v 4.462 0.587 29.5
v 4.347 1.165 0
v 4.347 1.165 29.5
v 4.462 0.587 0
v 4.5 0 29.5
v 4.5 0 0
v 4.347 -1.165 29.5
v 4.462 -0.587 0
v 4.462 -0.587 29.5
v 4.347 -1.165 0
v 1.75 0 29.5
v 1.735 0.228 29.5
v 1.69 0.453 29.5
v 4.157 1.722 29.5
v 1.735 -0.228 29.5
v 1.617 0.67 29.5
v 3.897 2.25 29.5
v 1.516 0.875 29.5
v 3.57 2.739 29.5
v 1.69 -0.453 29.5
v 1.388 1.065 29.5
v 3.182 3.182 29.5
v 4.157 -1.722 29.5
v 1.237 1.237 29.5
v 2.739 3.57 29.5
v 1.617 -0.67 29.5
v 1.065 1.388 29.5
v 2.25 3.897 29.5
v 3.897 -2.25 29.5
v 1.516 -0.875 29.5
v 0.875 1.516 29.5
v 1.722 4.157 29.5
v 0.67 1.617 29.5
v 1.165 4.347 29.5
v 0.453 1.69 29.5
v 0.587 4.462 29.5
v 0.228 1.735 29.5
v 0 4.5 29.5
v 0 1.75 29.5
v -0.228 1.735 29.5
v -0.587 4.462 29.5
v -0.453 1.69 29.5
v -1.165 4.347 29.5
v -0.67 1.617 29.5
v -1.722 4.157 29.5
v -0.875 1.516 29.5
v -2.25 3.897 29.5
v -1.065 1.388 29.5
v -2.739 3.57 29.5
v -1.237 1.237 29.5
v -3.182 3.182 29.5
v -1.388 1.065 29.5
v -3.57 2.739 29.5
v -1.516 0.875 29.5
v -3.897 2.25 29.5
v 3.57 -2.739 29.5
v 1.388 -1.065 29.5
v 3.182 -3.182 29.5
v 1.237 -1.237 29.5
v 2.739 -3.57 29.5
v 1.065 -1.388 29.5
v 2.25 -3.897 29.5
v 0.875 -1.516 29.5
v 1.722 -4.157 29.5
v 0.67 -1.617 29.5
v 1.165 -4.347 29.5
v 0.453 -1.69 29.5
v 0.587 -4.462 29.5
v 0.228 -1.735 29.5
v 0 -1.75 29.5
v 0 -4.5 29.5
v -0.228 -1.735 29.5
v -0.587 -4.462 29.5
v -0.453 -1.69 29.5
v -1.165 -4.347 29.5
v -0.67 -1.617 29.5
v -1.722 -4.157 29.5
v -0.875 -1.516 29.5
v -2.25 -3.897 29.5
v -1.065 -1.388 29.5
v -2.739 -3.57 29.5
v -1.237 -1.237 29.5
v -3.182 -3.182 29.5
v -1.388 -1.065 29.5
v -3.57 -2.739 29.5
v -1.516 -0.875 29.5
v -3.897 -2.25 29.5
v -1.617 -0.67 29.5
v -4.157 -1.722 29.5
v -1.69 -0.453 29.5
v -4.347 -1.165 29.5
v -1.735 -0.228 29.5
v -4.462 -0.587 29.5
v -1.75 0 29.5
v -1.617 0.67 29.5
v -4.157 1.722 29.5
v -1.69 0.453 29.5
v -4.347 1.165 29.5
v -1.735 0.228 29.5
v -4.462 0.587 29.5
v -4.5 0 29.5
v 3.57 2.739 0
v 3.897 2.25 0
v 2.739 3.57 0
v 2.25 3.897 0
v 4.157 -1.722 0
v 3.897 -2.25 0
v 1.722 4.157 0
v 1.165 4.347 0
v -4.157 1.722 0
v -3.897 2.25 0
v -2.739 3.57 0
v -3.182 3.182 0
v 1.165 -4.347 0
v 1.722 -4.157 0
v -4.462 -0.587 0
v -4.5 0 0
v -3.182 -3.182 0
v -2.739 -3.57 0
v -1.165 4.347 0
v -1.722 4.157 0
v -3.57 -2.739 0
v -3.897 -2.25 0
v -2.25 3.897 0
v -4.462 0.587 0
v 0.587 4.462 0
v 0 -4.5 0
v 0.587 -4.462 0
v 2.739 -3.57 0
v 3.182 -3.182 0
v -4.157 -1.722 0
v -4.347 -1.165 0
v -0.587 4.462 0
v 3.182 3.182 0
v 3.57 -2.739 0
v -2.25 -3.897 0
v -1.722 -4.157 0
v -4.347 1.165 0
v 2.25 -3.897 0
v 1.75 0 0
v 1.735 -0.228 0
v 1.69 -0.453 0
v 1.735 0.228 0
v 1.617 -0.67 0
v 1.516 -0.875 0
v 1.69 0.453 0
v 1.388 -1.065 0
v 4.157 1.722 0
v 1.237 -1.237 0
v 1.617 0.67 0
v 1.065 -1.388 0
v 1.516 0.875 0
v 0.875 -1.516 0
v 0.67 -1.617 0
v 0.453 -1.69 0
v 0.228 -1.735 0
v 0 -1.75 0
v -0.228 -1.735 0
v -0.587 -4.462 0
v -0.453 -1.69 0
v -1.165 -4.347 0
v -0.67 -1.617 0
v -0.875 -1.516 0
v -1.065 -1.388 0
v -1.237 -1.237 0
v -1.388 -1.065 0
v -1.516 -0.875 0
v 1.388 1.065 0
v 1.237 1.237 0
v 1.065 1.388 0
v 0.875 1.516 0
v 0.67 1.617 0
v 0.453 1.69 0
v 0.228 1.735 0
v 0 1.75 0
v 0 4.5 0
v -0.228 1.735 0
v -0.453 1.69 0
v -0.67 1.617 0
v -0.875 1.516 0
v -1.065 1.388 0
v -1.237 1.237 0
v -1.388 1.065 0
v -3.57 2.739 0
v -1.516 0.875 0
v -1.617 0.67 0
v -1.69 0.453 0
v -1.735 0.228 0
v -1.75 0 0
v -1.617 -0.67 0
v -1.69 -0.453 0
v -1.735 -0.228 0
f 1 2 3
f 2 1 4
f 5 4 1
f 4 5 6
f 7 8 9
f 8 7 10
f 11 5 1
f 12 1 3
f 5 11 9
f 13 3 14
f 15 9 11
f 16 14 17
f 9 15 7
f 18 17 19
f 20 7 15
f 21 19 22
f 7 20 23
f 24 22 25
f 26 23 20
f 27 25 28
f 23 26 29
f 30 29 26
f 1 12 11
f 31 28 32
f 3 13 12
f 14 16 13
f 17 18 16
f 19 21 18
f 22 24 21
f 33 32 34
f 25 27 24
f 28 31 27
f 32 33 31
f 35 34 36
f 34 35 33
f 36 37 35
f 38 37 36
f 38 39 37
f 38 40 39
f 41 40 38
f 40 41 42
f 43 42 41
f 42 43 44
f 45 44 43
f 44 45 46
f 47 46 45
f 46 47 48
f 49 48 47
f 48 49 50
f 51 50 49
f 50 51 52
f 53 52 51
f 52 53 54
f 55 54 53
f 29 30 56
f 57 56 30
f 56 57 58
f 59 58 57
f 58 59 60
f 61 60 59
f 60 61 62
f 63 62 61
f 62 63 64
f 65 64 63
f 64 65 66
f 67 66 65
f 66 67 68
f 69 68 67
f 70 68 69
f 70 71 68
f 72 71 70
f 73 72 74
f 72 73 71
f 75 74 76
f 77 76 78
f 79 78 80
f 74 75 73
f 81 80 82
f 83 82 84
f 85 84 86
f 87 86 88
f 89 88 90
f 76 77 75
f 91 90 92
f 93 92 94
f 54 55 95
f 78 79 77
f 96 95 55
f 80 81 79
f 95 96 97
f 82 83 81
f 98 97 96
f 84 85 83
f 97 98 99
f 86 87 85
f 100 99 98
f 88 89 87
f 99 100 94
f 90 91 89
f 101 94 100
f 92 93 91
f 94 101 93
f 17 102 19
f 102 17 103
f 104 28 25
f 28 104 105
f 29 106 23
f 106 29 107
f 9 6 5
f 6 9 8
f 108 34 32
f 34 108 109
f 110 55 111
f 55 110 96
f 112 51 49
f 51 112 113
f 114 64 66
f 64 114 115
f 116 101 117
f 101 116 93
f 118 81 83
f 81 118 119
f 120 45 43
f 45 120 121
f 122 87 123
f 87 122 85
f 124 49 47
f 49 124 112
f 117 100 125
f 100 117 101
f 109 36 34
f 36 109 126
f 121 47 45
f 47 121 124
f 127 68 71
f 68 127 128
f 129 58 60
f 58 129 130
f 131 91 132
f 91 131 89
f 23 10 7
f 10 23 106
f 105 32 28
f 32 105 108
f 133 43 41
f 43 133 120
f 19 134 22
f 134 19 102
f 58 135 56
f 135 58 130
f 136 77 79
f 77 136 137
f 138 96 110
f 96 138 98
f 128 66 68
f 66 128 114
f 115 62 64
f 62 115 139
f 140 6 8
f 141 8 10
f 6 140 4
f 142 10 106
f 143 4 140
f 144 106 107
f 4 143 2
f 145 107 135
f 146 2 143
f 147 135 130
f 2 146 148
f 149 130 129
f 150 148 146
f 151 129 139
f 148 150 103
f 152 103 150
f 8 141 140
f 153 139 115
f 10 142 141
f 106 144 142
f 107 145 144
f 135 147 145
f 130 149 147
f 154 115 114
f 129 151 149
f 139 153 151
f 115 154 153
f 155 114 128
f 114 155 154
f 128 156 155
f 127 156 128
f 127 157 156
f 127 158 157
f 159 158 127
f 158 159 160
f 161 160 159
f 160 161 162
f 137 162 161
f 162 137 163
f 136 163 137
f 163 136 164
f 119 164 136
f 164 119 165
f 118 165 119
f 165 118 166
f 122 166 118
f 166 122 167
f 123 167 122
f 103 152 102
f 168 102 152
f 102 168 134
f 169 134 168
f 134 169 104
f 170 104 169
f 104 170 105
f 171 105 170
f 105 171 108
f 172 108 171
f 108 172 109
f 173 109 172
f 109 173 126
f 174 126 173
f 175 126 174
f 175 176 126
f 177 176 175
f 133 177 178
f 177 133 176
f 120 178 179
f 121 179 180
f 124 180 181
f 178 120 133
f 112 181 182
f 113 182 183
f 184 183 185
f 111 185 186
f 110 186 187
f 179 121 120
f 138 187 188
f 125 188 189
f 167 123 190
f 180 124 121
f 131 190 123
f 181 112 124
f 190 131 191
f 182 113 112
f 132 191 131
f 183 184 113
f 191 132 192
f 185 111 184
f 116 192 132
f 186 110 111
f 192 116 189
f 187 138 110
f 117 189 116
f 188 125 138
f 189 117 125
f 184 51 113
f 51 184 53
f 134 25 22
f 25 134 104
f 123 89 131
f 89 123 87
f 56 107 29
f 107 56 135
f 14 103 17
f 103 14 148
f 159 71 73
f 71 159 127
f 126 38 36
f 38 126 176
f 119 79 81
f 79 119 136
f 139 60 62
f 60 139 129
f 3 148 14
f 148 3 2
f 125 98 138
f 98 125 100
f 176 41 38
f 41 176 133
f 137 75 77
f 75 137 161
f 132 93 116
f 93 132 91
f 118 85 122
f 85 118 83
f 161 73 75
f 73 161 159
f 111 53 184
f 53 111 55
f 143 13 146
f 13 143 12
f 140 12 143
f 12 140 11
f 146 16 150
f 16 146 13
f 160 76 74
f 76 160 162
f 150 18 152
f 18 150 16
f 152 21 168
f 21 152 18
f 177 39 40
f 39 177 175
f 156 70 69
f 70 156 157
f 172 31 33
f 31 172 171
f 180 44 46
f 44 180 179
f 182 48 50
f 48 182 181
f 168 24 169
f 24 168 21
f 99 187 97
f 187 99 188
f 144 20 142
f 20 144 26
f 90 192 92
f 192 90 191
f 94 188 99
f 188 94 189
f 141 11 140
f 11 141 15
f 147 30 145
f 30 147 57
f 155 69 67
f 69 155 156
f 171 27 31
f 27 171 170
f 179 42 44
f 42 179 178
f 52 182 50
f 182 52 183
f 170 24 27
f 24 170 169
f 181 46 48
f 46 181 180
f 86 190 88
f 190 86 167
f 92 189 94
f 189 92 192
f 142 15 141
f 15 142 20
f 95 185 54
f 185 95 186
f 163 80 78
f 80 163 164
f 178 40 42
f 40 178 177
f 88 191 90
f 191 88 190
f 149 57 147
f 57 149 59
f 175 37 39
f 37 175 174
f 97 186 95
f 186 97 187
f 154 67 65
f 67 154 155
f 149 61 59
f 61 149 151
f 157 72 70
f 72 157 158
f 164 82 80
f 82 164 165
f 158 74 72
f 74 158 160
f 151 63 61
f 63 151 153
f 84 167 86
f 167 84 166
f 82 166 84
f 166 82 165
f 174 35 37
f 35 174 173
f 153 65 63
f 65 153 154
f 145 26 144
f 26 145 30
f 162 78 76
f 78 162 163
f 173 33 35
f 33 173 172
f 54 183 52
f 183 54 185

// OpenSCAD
// Gen-DW — frame standoff tube between stator and an endbell, on each M3 frame rod (outside rotor OD).
// Print x4. Height = frame_standoff_h (rotor + steel + hub + collar + running clearance).
include <parameters.scad>;
$fn = 48;
difference() {
    cylinder(d=standoff_od, h=frame_standoff_h);
    translate([0, 0, -0.1]) cylinder(d=m3_clear, h=frame_standoff_h + 0.2);
}
